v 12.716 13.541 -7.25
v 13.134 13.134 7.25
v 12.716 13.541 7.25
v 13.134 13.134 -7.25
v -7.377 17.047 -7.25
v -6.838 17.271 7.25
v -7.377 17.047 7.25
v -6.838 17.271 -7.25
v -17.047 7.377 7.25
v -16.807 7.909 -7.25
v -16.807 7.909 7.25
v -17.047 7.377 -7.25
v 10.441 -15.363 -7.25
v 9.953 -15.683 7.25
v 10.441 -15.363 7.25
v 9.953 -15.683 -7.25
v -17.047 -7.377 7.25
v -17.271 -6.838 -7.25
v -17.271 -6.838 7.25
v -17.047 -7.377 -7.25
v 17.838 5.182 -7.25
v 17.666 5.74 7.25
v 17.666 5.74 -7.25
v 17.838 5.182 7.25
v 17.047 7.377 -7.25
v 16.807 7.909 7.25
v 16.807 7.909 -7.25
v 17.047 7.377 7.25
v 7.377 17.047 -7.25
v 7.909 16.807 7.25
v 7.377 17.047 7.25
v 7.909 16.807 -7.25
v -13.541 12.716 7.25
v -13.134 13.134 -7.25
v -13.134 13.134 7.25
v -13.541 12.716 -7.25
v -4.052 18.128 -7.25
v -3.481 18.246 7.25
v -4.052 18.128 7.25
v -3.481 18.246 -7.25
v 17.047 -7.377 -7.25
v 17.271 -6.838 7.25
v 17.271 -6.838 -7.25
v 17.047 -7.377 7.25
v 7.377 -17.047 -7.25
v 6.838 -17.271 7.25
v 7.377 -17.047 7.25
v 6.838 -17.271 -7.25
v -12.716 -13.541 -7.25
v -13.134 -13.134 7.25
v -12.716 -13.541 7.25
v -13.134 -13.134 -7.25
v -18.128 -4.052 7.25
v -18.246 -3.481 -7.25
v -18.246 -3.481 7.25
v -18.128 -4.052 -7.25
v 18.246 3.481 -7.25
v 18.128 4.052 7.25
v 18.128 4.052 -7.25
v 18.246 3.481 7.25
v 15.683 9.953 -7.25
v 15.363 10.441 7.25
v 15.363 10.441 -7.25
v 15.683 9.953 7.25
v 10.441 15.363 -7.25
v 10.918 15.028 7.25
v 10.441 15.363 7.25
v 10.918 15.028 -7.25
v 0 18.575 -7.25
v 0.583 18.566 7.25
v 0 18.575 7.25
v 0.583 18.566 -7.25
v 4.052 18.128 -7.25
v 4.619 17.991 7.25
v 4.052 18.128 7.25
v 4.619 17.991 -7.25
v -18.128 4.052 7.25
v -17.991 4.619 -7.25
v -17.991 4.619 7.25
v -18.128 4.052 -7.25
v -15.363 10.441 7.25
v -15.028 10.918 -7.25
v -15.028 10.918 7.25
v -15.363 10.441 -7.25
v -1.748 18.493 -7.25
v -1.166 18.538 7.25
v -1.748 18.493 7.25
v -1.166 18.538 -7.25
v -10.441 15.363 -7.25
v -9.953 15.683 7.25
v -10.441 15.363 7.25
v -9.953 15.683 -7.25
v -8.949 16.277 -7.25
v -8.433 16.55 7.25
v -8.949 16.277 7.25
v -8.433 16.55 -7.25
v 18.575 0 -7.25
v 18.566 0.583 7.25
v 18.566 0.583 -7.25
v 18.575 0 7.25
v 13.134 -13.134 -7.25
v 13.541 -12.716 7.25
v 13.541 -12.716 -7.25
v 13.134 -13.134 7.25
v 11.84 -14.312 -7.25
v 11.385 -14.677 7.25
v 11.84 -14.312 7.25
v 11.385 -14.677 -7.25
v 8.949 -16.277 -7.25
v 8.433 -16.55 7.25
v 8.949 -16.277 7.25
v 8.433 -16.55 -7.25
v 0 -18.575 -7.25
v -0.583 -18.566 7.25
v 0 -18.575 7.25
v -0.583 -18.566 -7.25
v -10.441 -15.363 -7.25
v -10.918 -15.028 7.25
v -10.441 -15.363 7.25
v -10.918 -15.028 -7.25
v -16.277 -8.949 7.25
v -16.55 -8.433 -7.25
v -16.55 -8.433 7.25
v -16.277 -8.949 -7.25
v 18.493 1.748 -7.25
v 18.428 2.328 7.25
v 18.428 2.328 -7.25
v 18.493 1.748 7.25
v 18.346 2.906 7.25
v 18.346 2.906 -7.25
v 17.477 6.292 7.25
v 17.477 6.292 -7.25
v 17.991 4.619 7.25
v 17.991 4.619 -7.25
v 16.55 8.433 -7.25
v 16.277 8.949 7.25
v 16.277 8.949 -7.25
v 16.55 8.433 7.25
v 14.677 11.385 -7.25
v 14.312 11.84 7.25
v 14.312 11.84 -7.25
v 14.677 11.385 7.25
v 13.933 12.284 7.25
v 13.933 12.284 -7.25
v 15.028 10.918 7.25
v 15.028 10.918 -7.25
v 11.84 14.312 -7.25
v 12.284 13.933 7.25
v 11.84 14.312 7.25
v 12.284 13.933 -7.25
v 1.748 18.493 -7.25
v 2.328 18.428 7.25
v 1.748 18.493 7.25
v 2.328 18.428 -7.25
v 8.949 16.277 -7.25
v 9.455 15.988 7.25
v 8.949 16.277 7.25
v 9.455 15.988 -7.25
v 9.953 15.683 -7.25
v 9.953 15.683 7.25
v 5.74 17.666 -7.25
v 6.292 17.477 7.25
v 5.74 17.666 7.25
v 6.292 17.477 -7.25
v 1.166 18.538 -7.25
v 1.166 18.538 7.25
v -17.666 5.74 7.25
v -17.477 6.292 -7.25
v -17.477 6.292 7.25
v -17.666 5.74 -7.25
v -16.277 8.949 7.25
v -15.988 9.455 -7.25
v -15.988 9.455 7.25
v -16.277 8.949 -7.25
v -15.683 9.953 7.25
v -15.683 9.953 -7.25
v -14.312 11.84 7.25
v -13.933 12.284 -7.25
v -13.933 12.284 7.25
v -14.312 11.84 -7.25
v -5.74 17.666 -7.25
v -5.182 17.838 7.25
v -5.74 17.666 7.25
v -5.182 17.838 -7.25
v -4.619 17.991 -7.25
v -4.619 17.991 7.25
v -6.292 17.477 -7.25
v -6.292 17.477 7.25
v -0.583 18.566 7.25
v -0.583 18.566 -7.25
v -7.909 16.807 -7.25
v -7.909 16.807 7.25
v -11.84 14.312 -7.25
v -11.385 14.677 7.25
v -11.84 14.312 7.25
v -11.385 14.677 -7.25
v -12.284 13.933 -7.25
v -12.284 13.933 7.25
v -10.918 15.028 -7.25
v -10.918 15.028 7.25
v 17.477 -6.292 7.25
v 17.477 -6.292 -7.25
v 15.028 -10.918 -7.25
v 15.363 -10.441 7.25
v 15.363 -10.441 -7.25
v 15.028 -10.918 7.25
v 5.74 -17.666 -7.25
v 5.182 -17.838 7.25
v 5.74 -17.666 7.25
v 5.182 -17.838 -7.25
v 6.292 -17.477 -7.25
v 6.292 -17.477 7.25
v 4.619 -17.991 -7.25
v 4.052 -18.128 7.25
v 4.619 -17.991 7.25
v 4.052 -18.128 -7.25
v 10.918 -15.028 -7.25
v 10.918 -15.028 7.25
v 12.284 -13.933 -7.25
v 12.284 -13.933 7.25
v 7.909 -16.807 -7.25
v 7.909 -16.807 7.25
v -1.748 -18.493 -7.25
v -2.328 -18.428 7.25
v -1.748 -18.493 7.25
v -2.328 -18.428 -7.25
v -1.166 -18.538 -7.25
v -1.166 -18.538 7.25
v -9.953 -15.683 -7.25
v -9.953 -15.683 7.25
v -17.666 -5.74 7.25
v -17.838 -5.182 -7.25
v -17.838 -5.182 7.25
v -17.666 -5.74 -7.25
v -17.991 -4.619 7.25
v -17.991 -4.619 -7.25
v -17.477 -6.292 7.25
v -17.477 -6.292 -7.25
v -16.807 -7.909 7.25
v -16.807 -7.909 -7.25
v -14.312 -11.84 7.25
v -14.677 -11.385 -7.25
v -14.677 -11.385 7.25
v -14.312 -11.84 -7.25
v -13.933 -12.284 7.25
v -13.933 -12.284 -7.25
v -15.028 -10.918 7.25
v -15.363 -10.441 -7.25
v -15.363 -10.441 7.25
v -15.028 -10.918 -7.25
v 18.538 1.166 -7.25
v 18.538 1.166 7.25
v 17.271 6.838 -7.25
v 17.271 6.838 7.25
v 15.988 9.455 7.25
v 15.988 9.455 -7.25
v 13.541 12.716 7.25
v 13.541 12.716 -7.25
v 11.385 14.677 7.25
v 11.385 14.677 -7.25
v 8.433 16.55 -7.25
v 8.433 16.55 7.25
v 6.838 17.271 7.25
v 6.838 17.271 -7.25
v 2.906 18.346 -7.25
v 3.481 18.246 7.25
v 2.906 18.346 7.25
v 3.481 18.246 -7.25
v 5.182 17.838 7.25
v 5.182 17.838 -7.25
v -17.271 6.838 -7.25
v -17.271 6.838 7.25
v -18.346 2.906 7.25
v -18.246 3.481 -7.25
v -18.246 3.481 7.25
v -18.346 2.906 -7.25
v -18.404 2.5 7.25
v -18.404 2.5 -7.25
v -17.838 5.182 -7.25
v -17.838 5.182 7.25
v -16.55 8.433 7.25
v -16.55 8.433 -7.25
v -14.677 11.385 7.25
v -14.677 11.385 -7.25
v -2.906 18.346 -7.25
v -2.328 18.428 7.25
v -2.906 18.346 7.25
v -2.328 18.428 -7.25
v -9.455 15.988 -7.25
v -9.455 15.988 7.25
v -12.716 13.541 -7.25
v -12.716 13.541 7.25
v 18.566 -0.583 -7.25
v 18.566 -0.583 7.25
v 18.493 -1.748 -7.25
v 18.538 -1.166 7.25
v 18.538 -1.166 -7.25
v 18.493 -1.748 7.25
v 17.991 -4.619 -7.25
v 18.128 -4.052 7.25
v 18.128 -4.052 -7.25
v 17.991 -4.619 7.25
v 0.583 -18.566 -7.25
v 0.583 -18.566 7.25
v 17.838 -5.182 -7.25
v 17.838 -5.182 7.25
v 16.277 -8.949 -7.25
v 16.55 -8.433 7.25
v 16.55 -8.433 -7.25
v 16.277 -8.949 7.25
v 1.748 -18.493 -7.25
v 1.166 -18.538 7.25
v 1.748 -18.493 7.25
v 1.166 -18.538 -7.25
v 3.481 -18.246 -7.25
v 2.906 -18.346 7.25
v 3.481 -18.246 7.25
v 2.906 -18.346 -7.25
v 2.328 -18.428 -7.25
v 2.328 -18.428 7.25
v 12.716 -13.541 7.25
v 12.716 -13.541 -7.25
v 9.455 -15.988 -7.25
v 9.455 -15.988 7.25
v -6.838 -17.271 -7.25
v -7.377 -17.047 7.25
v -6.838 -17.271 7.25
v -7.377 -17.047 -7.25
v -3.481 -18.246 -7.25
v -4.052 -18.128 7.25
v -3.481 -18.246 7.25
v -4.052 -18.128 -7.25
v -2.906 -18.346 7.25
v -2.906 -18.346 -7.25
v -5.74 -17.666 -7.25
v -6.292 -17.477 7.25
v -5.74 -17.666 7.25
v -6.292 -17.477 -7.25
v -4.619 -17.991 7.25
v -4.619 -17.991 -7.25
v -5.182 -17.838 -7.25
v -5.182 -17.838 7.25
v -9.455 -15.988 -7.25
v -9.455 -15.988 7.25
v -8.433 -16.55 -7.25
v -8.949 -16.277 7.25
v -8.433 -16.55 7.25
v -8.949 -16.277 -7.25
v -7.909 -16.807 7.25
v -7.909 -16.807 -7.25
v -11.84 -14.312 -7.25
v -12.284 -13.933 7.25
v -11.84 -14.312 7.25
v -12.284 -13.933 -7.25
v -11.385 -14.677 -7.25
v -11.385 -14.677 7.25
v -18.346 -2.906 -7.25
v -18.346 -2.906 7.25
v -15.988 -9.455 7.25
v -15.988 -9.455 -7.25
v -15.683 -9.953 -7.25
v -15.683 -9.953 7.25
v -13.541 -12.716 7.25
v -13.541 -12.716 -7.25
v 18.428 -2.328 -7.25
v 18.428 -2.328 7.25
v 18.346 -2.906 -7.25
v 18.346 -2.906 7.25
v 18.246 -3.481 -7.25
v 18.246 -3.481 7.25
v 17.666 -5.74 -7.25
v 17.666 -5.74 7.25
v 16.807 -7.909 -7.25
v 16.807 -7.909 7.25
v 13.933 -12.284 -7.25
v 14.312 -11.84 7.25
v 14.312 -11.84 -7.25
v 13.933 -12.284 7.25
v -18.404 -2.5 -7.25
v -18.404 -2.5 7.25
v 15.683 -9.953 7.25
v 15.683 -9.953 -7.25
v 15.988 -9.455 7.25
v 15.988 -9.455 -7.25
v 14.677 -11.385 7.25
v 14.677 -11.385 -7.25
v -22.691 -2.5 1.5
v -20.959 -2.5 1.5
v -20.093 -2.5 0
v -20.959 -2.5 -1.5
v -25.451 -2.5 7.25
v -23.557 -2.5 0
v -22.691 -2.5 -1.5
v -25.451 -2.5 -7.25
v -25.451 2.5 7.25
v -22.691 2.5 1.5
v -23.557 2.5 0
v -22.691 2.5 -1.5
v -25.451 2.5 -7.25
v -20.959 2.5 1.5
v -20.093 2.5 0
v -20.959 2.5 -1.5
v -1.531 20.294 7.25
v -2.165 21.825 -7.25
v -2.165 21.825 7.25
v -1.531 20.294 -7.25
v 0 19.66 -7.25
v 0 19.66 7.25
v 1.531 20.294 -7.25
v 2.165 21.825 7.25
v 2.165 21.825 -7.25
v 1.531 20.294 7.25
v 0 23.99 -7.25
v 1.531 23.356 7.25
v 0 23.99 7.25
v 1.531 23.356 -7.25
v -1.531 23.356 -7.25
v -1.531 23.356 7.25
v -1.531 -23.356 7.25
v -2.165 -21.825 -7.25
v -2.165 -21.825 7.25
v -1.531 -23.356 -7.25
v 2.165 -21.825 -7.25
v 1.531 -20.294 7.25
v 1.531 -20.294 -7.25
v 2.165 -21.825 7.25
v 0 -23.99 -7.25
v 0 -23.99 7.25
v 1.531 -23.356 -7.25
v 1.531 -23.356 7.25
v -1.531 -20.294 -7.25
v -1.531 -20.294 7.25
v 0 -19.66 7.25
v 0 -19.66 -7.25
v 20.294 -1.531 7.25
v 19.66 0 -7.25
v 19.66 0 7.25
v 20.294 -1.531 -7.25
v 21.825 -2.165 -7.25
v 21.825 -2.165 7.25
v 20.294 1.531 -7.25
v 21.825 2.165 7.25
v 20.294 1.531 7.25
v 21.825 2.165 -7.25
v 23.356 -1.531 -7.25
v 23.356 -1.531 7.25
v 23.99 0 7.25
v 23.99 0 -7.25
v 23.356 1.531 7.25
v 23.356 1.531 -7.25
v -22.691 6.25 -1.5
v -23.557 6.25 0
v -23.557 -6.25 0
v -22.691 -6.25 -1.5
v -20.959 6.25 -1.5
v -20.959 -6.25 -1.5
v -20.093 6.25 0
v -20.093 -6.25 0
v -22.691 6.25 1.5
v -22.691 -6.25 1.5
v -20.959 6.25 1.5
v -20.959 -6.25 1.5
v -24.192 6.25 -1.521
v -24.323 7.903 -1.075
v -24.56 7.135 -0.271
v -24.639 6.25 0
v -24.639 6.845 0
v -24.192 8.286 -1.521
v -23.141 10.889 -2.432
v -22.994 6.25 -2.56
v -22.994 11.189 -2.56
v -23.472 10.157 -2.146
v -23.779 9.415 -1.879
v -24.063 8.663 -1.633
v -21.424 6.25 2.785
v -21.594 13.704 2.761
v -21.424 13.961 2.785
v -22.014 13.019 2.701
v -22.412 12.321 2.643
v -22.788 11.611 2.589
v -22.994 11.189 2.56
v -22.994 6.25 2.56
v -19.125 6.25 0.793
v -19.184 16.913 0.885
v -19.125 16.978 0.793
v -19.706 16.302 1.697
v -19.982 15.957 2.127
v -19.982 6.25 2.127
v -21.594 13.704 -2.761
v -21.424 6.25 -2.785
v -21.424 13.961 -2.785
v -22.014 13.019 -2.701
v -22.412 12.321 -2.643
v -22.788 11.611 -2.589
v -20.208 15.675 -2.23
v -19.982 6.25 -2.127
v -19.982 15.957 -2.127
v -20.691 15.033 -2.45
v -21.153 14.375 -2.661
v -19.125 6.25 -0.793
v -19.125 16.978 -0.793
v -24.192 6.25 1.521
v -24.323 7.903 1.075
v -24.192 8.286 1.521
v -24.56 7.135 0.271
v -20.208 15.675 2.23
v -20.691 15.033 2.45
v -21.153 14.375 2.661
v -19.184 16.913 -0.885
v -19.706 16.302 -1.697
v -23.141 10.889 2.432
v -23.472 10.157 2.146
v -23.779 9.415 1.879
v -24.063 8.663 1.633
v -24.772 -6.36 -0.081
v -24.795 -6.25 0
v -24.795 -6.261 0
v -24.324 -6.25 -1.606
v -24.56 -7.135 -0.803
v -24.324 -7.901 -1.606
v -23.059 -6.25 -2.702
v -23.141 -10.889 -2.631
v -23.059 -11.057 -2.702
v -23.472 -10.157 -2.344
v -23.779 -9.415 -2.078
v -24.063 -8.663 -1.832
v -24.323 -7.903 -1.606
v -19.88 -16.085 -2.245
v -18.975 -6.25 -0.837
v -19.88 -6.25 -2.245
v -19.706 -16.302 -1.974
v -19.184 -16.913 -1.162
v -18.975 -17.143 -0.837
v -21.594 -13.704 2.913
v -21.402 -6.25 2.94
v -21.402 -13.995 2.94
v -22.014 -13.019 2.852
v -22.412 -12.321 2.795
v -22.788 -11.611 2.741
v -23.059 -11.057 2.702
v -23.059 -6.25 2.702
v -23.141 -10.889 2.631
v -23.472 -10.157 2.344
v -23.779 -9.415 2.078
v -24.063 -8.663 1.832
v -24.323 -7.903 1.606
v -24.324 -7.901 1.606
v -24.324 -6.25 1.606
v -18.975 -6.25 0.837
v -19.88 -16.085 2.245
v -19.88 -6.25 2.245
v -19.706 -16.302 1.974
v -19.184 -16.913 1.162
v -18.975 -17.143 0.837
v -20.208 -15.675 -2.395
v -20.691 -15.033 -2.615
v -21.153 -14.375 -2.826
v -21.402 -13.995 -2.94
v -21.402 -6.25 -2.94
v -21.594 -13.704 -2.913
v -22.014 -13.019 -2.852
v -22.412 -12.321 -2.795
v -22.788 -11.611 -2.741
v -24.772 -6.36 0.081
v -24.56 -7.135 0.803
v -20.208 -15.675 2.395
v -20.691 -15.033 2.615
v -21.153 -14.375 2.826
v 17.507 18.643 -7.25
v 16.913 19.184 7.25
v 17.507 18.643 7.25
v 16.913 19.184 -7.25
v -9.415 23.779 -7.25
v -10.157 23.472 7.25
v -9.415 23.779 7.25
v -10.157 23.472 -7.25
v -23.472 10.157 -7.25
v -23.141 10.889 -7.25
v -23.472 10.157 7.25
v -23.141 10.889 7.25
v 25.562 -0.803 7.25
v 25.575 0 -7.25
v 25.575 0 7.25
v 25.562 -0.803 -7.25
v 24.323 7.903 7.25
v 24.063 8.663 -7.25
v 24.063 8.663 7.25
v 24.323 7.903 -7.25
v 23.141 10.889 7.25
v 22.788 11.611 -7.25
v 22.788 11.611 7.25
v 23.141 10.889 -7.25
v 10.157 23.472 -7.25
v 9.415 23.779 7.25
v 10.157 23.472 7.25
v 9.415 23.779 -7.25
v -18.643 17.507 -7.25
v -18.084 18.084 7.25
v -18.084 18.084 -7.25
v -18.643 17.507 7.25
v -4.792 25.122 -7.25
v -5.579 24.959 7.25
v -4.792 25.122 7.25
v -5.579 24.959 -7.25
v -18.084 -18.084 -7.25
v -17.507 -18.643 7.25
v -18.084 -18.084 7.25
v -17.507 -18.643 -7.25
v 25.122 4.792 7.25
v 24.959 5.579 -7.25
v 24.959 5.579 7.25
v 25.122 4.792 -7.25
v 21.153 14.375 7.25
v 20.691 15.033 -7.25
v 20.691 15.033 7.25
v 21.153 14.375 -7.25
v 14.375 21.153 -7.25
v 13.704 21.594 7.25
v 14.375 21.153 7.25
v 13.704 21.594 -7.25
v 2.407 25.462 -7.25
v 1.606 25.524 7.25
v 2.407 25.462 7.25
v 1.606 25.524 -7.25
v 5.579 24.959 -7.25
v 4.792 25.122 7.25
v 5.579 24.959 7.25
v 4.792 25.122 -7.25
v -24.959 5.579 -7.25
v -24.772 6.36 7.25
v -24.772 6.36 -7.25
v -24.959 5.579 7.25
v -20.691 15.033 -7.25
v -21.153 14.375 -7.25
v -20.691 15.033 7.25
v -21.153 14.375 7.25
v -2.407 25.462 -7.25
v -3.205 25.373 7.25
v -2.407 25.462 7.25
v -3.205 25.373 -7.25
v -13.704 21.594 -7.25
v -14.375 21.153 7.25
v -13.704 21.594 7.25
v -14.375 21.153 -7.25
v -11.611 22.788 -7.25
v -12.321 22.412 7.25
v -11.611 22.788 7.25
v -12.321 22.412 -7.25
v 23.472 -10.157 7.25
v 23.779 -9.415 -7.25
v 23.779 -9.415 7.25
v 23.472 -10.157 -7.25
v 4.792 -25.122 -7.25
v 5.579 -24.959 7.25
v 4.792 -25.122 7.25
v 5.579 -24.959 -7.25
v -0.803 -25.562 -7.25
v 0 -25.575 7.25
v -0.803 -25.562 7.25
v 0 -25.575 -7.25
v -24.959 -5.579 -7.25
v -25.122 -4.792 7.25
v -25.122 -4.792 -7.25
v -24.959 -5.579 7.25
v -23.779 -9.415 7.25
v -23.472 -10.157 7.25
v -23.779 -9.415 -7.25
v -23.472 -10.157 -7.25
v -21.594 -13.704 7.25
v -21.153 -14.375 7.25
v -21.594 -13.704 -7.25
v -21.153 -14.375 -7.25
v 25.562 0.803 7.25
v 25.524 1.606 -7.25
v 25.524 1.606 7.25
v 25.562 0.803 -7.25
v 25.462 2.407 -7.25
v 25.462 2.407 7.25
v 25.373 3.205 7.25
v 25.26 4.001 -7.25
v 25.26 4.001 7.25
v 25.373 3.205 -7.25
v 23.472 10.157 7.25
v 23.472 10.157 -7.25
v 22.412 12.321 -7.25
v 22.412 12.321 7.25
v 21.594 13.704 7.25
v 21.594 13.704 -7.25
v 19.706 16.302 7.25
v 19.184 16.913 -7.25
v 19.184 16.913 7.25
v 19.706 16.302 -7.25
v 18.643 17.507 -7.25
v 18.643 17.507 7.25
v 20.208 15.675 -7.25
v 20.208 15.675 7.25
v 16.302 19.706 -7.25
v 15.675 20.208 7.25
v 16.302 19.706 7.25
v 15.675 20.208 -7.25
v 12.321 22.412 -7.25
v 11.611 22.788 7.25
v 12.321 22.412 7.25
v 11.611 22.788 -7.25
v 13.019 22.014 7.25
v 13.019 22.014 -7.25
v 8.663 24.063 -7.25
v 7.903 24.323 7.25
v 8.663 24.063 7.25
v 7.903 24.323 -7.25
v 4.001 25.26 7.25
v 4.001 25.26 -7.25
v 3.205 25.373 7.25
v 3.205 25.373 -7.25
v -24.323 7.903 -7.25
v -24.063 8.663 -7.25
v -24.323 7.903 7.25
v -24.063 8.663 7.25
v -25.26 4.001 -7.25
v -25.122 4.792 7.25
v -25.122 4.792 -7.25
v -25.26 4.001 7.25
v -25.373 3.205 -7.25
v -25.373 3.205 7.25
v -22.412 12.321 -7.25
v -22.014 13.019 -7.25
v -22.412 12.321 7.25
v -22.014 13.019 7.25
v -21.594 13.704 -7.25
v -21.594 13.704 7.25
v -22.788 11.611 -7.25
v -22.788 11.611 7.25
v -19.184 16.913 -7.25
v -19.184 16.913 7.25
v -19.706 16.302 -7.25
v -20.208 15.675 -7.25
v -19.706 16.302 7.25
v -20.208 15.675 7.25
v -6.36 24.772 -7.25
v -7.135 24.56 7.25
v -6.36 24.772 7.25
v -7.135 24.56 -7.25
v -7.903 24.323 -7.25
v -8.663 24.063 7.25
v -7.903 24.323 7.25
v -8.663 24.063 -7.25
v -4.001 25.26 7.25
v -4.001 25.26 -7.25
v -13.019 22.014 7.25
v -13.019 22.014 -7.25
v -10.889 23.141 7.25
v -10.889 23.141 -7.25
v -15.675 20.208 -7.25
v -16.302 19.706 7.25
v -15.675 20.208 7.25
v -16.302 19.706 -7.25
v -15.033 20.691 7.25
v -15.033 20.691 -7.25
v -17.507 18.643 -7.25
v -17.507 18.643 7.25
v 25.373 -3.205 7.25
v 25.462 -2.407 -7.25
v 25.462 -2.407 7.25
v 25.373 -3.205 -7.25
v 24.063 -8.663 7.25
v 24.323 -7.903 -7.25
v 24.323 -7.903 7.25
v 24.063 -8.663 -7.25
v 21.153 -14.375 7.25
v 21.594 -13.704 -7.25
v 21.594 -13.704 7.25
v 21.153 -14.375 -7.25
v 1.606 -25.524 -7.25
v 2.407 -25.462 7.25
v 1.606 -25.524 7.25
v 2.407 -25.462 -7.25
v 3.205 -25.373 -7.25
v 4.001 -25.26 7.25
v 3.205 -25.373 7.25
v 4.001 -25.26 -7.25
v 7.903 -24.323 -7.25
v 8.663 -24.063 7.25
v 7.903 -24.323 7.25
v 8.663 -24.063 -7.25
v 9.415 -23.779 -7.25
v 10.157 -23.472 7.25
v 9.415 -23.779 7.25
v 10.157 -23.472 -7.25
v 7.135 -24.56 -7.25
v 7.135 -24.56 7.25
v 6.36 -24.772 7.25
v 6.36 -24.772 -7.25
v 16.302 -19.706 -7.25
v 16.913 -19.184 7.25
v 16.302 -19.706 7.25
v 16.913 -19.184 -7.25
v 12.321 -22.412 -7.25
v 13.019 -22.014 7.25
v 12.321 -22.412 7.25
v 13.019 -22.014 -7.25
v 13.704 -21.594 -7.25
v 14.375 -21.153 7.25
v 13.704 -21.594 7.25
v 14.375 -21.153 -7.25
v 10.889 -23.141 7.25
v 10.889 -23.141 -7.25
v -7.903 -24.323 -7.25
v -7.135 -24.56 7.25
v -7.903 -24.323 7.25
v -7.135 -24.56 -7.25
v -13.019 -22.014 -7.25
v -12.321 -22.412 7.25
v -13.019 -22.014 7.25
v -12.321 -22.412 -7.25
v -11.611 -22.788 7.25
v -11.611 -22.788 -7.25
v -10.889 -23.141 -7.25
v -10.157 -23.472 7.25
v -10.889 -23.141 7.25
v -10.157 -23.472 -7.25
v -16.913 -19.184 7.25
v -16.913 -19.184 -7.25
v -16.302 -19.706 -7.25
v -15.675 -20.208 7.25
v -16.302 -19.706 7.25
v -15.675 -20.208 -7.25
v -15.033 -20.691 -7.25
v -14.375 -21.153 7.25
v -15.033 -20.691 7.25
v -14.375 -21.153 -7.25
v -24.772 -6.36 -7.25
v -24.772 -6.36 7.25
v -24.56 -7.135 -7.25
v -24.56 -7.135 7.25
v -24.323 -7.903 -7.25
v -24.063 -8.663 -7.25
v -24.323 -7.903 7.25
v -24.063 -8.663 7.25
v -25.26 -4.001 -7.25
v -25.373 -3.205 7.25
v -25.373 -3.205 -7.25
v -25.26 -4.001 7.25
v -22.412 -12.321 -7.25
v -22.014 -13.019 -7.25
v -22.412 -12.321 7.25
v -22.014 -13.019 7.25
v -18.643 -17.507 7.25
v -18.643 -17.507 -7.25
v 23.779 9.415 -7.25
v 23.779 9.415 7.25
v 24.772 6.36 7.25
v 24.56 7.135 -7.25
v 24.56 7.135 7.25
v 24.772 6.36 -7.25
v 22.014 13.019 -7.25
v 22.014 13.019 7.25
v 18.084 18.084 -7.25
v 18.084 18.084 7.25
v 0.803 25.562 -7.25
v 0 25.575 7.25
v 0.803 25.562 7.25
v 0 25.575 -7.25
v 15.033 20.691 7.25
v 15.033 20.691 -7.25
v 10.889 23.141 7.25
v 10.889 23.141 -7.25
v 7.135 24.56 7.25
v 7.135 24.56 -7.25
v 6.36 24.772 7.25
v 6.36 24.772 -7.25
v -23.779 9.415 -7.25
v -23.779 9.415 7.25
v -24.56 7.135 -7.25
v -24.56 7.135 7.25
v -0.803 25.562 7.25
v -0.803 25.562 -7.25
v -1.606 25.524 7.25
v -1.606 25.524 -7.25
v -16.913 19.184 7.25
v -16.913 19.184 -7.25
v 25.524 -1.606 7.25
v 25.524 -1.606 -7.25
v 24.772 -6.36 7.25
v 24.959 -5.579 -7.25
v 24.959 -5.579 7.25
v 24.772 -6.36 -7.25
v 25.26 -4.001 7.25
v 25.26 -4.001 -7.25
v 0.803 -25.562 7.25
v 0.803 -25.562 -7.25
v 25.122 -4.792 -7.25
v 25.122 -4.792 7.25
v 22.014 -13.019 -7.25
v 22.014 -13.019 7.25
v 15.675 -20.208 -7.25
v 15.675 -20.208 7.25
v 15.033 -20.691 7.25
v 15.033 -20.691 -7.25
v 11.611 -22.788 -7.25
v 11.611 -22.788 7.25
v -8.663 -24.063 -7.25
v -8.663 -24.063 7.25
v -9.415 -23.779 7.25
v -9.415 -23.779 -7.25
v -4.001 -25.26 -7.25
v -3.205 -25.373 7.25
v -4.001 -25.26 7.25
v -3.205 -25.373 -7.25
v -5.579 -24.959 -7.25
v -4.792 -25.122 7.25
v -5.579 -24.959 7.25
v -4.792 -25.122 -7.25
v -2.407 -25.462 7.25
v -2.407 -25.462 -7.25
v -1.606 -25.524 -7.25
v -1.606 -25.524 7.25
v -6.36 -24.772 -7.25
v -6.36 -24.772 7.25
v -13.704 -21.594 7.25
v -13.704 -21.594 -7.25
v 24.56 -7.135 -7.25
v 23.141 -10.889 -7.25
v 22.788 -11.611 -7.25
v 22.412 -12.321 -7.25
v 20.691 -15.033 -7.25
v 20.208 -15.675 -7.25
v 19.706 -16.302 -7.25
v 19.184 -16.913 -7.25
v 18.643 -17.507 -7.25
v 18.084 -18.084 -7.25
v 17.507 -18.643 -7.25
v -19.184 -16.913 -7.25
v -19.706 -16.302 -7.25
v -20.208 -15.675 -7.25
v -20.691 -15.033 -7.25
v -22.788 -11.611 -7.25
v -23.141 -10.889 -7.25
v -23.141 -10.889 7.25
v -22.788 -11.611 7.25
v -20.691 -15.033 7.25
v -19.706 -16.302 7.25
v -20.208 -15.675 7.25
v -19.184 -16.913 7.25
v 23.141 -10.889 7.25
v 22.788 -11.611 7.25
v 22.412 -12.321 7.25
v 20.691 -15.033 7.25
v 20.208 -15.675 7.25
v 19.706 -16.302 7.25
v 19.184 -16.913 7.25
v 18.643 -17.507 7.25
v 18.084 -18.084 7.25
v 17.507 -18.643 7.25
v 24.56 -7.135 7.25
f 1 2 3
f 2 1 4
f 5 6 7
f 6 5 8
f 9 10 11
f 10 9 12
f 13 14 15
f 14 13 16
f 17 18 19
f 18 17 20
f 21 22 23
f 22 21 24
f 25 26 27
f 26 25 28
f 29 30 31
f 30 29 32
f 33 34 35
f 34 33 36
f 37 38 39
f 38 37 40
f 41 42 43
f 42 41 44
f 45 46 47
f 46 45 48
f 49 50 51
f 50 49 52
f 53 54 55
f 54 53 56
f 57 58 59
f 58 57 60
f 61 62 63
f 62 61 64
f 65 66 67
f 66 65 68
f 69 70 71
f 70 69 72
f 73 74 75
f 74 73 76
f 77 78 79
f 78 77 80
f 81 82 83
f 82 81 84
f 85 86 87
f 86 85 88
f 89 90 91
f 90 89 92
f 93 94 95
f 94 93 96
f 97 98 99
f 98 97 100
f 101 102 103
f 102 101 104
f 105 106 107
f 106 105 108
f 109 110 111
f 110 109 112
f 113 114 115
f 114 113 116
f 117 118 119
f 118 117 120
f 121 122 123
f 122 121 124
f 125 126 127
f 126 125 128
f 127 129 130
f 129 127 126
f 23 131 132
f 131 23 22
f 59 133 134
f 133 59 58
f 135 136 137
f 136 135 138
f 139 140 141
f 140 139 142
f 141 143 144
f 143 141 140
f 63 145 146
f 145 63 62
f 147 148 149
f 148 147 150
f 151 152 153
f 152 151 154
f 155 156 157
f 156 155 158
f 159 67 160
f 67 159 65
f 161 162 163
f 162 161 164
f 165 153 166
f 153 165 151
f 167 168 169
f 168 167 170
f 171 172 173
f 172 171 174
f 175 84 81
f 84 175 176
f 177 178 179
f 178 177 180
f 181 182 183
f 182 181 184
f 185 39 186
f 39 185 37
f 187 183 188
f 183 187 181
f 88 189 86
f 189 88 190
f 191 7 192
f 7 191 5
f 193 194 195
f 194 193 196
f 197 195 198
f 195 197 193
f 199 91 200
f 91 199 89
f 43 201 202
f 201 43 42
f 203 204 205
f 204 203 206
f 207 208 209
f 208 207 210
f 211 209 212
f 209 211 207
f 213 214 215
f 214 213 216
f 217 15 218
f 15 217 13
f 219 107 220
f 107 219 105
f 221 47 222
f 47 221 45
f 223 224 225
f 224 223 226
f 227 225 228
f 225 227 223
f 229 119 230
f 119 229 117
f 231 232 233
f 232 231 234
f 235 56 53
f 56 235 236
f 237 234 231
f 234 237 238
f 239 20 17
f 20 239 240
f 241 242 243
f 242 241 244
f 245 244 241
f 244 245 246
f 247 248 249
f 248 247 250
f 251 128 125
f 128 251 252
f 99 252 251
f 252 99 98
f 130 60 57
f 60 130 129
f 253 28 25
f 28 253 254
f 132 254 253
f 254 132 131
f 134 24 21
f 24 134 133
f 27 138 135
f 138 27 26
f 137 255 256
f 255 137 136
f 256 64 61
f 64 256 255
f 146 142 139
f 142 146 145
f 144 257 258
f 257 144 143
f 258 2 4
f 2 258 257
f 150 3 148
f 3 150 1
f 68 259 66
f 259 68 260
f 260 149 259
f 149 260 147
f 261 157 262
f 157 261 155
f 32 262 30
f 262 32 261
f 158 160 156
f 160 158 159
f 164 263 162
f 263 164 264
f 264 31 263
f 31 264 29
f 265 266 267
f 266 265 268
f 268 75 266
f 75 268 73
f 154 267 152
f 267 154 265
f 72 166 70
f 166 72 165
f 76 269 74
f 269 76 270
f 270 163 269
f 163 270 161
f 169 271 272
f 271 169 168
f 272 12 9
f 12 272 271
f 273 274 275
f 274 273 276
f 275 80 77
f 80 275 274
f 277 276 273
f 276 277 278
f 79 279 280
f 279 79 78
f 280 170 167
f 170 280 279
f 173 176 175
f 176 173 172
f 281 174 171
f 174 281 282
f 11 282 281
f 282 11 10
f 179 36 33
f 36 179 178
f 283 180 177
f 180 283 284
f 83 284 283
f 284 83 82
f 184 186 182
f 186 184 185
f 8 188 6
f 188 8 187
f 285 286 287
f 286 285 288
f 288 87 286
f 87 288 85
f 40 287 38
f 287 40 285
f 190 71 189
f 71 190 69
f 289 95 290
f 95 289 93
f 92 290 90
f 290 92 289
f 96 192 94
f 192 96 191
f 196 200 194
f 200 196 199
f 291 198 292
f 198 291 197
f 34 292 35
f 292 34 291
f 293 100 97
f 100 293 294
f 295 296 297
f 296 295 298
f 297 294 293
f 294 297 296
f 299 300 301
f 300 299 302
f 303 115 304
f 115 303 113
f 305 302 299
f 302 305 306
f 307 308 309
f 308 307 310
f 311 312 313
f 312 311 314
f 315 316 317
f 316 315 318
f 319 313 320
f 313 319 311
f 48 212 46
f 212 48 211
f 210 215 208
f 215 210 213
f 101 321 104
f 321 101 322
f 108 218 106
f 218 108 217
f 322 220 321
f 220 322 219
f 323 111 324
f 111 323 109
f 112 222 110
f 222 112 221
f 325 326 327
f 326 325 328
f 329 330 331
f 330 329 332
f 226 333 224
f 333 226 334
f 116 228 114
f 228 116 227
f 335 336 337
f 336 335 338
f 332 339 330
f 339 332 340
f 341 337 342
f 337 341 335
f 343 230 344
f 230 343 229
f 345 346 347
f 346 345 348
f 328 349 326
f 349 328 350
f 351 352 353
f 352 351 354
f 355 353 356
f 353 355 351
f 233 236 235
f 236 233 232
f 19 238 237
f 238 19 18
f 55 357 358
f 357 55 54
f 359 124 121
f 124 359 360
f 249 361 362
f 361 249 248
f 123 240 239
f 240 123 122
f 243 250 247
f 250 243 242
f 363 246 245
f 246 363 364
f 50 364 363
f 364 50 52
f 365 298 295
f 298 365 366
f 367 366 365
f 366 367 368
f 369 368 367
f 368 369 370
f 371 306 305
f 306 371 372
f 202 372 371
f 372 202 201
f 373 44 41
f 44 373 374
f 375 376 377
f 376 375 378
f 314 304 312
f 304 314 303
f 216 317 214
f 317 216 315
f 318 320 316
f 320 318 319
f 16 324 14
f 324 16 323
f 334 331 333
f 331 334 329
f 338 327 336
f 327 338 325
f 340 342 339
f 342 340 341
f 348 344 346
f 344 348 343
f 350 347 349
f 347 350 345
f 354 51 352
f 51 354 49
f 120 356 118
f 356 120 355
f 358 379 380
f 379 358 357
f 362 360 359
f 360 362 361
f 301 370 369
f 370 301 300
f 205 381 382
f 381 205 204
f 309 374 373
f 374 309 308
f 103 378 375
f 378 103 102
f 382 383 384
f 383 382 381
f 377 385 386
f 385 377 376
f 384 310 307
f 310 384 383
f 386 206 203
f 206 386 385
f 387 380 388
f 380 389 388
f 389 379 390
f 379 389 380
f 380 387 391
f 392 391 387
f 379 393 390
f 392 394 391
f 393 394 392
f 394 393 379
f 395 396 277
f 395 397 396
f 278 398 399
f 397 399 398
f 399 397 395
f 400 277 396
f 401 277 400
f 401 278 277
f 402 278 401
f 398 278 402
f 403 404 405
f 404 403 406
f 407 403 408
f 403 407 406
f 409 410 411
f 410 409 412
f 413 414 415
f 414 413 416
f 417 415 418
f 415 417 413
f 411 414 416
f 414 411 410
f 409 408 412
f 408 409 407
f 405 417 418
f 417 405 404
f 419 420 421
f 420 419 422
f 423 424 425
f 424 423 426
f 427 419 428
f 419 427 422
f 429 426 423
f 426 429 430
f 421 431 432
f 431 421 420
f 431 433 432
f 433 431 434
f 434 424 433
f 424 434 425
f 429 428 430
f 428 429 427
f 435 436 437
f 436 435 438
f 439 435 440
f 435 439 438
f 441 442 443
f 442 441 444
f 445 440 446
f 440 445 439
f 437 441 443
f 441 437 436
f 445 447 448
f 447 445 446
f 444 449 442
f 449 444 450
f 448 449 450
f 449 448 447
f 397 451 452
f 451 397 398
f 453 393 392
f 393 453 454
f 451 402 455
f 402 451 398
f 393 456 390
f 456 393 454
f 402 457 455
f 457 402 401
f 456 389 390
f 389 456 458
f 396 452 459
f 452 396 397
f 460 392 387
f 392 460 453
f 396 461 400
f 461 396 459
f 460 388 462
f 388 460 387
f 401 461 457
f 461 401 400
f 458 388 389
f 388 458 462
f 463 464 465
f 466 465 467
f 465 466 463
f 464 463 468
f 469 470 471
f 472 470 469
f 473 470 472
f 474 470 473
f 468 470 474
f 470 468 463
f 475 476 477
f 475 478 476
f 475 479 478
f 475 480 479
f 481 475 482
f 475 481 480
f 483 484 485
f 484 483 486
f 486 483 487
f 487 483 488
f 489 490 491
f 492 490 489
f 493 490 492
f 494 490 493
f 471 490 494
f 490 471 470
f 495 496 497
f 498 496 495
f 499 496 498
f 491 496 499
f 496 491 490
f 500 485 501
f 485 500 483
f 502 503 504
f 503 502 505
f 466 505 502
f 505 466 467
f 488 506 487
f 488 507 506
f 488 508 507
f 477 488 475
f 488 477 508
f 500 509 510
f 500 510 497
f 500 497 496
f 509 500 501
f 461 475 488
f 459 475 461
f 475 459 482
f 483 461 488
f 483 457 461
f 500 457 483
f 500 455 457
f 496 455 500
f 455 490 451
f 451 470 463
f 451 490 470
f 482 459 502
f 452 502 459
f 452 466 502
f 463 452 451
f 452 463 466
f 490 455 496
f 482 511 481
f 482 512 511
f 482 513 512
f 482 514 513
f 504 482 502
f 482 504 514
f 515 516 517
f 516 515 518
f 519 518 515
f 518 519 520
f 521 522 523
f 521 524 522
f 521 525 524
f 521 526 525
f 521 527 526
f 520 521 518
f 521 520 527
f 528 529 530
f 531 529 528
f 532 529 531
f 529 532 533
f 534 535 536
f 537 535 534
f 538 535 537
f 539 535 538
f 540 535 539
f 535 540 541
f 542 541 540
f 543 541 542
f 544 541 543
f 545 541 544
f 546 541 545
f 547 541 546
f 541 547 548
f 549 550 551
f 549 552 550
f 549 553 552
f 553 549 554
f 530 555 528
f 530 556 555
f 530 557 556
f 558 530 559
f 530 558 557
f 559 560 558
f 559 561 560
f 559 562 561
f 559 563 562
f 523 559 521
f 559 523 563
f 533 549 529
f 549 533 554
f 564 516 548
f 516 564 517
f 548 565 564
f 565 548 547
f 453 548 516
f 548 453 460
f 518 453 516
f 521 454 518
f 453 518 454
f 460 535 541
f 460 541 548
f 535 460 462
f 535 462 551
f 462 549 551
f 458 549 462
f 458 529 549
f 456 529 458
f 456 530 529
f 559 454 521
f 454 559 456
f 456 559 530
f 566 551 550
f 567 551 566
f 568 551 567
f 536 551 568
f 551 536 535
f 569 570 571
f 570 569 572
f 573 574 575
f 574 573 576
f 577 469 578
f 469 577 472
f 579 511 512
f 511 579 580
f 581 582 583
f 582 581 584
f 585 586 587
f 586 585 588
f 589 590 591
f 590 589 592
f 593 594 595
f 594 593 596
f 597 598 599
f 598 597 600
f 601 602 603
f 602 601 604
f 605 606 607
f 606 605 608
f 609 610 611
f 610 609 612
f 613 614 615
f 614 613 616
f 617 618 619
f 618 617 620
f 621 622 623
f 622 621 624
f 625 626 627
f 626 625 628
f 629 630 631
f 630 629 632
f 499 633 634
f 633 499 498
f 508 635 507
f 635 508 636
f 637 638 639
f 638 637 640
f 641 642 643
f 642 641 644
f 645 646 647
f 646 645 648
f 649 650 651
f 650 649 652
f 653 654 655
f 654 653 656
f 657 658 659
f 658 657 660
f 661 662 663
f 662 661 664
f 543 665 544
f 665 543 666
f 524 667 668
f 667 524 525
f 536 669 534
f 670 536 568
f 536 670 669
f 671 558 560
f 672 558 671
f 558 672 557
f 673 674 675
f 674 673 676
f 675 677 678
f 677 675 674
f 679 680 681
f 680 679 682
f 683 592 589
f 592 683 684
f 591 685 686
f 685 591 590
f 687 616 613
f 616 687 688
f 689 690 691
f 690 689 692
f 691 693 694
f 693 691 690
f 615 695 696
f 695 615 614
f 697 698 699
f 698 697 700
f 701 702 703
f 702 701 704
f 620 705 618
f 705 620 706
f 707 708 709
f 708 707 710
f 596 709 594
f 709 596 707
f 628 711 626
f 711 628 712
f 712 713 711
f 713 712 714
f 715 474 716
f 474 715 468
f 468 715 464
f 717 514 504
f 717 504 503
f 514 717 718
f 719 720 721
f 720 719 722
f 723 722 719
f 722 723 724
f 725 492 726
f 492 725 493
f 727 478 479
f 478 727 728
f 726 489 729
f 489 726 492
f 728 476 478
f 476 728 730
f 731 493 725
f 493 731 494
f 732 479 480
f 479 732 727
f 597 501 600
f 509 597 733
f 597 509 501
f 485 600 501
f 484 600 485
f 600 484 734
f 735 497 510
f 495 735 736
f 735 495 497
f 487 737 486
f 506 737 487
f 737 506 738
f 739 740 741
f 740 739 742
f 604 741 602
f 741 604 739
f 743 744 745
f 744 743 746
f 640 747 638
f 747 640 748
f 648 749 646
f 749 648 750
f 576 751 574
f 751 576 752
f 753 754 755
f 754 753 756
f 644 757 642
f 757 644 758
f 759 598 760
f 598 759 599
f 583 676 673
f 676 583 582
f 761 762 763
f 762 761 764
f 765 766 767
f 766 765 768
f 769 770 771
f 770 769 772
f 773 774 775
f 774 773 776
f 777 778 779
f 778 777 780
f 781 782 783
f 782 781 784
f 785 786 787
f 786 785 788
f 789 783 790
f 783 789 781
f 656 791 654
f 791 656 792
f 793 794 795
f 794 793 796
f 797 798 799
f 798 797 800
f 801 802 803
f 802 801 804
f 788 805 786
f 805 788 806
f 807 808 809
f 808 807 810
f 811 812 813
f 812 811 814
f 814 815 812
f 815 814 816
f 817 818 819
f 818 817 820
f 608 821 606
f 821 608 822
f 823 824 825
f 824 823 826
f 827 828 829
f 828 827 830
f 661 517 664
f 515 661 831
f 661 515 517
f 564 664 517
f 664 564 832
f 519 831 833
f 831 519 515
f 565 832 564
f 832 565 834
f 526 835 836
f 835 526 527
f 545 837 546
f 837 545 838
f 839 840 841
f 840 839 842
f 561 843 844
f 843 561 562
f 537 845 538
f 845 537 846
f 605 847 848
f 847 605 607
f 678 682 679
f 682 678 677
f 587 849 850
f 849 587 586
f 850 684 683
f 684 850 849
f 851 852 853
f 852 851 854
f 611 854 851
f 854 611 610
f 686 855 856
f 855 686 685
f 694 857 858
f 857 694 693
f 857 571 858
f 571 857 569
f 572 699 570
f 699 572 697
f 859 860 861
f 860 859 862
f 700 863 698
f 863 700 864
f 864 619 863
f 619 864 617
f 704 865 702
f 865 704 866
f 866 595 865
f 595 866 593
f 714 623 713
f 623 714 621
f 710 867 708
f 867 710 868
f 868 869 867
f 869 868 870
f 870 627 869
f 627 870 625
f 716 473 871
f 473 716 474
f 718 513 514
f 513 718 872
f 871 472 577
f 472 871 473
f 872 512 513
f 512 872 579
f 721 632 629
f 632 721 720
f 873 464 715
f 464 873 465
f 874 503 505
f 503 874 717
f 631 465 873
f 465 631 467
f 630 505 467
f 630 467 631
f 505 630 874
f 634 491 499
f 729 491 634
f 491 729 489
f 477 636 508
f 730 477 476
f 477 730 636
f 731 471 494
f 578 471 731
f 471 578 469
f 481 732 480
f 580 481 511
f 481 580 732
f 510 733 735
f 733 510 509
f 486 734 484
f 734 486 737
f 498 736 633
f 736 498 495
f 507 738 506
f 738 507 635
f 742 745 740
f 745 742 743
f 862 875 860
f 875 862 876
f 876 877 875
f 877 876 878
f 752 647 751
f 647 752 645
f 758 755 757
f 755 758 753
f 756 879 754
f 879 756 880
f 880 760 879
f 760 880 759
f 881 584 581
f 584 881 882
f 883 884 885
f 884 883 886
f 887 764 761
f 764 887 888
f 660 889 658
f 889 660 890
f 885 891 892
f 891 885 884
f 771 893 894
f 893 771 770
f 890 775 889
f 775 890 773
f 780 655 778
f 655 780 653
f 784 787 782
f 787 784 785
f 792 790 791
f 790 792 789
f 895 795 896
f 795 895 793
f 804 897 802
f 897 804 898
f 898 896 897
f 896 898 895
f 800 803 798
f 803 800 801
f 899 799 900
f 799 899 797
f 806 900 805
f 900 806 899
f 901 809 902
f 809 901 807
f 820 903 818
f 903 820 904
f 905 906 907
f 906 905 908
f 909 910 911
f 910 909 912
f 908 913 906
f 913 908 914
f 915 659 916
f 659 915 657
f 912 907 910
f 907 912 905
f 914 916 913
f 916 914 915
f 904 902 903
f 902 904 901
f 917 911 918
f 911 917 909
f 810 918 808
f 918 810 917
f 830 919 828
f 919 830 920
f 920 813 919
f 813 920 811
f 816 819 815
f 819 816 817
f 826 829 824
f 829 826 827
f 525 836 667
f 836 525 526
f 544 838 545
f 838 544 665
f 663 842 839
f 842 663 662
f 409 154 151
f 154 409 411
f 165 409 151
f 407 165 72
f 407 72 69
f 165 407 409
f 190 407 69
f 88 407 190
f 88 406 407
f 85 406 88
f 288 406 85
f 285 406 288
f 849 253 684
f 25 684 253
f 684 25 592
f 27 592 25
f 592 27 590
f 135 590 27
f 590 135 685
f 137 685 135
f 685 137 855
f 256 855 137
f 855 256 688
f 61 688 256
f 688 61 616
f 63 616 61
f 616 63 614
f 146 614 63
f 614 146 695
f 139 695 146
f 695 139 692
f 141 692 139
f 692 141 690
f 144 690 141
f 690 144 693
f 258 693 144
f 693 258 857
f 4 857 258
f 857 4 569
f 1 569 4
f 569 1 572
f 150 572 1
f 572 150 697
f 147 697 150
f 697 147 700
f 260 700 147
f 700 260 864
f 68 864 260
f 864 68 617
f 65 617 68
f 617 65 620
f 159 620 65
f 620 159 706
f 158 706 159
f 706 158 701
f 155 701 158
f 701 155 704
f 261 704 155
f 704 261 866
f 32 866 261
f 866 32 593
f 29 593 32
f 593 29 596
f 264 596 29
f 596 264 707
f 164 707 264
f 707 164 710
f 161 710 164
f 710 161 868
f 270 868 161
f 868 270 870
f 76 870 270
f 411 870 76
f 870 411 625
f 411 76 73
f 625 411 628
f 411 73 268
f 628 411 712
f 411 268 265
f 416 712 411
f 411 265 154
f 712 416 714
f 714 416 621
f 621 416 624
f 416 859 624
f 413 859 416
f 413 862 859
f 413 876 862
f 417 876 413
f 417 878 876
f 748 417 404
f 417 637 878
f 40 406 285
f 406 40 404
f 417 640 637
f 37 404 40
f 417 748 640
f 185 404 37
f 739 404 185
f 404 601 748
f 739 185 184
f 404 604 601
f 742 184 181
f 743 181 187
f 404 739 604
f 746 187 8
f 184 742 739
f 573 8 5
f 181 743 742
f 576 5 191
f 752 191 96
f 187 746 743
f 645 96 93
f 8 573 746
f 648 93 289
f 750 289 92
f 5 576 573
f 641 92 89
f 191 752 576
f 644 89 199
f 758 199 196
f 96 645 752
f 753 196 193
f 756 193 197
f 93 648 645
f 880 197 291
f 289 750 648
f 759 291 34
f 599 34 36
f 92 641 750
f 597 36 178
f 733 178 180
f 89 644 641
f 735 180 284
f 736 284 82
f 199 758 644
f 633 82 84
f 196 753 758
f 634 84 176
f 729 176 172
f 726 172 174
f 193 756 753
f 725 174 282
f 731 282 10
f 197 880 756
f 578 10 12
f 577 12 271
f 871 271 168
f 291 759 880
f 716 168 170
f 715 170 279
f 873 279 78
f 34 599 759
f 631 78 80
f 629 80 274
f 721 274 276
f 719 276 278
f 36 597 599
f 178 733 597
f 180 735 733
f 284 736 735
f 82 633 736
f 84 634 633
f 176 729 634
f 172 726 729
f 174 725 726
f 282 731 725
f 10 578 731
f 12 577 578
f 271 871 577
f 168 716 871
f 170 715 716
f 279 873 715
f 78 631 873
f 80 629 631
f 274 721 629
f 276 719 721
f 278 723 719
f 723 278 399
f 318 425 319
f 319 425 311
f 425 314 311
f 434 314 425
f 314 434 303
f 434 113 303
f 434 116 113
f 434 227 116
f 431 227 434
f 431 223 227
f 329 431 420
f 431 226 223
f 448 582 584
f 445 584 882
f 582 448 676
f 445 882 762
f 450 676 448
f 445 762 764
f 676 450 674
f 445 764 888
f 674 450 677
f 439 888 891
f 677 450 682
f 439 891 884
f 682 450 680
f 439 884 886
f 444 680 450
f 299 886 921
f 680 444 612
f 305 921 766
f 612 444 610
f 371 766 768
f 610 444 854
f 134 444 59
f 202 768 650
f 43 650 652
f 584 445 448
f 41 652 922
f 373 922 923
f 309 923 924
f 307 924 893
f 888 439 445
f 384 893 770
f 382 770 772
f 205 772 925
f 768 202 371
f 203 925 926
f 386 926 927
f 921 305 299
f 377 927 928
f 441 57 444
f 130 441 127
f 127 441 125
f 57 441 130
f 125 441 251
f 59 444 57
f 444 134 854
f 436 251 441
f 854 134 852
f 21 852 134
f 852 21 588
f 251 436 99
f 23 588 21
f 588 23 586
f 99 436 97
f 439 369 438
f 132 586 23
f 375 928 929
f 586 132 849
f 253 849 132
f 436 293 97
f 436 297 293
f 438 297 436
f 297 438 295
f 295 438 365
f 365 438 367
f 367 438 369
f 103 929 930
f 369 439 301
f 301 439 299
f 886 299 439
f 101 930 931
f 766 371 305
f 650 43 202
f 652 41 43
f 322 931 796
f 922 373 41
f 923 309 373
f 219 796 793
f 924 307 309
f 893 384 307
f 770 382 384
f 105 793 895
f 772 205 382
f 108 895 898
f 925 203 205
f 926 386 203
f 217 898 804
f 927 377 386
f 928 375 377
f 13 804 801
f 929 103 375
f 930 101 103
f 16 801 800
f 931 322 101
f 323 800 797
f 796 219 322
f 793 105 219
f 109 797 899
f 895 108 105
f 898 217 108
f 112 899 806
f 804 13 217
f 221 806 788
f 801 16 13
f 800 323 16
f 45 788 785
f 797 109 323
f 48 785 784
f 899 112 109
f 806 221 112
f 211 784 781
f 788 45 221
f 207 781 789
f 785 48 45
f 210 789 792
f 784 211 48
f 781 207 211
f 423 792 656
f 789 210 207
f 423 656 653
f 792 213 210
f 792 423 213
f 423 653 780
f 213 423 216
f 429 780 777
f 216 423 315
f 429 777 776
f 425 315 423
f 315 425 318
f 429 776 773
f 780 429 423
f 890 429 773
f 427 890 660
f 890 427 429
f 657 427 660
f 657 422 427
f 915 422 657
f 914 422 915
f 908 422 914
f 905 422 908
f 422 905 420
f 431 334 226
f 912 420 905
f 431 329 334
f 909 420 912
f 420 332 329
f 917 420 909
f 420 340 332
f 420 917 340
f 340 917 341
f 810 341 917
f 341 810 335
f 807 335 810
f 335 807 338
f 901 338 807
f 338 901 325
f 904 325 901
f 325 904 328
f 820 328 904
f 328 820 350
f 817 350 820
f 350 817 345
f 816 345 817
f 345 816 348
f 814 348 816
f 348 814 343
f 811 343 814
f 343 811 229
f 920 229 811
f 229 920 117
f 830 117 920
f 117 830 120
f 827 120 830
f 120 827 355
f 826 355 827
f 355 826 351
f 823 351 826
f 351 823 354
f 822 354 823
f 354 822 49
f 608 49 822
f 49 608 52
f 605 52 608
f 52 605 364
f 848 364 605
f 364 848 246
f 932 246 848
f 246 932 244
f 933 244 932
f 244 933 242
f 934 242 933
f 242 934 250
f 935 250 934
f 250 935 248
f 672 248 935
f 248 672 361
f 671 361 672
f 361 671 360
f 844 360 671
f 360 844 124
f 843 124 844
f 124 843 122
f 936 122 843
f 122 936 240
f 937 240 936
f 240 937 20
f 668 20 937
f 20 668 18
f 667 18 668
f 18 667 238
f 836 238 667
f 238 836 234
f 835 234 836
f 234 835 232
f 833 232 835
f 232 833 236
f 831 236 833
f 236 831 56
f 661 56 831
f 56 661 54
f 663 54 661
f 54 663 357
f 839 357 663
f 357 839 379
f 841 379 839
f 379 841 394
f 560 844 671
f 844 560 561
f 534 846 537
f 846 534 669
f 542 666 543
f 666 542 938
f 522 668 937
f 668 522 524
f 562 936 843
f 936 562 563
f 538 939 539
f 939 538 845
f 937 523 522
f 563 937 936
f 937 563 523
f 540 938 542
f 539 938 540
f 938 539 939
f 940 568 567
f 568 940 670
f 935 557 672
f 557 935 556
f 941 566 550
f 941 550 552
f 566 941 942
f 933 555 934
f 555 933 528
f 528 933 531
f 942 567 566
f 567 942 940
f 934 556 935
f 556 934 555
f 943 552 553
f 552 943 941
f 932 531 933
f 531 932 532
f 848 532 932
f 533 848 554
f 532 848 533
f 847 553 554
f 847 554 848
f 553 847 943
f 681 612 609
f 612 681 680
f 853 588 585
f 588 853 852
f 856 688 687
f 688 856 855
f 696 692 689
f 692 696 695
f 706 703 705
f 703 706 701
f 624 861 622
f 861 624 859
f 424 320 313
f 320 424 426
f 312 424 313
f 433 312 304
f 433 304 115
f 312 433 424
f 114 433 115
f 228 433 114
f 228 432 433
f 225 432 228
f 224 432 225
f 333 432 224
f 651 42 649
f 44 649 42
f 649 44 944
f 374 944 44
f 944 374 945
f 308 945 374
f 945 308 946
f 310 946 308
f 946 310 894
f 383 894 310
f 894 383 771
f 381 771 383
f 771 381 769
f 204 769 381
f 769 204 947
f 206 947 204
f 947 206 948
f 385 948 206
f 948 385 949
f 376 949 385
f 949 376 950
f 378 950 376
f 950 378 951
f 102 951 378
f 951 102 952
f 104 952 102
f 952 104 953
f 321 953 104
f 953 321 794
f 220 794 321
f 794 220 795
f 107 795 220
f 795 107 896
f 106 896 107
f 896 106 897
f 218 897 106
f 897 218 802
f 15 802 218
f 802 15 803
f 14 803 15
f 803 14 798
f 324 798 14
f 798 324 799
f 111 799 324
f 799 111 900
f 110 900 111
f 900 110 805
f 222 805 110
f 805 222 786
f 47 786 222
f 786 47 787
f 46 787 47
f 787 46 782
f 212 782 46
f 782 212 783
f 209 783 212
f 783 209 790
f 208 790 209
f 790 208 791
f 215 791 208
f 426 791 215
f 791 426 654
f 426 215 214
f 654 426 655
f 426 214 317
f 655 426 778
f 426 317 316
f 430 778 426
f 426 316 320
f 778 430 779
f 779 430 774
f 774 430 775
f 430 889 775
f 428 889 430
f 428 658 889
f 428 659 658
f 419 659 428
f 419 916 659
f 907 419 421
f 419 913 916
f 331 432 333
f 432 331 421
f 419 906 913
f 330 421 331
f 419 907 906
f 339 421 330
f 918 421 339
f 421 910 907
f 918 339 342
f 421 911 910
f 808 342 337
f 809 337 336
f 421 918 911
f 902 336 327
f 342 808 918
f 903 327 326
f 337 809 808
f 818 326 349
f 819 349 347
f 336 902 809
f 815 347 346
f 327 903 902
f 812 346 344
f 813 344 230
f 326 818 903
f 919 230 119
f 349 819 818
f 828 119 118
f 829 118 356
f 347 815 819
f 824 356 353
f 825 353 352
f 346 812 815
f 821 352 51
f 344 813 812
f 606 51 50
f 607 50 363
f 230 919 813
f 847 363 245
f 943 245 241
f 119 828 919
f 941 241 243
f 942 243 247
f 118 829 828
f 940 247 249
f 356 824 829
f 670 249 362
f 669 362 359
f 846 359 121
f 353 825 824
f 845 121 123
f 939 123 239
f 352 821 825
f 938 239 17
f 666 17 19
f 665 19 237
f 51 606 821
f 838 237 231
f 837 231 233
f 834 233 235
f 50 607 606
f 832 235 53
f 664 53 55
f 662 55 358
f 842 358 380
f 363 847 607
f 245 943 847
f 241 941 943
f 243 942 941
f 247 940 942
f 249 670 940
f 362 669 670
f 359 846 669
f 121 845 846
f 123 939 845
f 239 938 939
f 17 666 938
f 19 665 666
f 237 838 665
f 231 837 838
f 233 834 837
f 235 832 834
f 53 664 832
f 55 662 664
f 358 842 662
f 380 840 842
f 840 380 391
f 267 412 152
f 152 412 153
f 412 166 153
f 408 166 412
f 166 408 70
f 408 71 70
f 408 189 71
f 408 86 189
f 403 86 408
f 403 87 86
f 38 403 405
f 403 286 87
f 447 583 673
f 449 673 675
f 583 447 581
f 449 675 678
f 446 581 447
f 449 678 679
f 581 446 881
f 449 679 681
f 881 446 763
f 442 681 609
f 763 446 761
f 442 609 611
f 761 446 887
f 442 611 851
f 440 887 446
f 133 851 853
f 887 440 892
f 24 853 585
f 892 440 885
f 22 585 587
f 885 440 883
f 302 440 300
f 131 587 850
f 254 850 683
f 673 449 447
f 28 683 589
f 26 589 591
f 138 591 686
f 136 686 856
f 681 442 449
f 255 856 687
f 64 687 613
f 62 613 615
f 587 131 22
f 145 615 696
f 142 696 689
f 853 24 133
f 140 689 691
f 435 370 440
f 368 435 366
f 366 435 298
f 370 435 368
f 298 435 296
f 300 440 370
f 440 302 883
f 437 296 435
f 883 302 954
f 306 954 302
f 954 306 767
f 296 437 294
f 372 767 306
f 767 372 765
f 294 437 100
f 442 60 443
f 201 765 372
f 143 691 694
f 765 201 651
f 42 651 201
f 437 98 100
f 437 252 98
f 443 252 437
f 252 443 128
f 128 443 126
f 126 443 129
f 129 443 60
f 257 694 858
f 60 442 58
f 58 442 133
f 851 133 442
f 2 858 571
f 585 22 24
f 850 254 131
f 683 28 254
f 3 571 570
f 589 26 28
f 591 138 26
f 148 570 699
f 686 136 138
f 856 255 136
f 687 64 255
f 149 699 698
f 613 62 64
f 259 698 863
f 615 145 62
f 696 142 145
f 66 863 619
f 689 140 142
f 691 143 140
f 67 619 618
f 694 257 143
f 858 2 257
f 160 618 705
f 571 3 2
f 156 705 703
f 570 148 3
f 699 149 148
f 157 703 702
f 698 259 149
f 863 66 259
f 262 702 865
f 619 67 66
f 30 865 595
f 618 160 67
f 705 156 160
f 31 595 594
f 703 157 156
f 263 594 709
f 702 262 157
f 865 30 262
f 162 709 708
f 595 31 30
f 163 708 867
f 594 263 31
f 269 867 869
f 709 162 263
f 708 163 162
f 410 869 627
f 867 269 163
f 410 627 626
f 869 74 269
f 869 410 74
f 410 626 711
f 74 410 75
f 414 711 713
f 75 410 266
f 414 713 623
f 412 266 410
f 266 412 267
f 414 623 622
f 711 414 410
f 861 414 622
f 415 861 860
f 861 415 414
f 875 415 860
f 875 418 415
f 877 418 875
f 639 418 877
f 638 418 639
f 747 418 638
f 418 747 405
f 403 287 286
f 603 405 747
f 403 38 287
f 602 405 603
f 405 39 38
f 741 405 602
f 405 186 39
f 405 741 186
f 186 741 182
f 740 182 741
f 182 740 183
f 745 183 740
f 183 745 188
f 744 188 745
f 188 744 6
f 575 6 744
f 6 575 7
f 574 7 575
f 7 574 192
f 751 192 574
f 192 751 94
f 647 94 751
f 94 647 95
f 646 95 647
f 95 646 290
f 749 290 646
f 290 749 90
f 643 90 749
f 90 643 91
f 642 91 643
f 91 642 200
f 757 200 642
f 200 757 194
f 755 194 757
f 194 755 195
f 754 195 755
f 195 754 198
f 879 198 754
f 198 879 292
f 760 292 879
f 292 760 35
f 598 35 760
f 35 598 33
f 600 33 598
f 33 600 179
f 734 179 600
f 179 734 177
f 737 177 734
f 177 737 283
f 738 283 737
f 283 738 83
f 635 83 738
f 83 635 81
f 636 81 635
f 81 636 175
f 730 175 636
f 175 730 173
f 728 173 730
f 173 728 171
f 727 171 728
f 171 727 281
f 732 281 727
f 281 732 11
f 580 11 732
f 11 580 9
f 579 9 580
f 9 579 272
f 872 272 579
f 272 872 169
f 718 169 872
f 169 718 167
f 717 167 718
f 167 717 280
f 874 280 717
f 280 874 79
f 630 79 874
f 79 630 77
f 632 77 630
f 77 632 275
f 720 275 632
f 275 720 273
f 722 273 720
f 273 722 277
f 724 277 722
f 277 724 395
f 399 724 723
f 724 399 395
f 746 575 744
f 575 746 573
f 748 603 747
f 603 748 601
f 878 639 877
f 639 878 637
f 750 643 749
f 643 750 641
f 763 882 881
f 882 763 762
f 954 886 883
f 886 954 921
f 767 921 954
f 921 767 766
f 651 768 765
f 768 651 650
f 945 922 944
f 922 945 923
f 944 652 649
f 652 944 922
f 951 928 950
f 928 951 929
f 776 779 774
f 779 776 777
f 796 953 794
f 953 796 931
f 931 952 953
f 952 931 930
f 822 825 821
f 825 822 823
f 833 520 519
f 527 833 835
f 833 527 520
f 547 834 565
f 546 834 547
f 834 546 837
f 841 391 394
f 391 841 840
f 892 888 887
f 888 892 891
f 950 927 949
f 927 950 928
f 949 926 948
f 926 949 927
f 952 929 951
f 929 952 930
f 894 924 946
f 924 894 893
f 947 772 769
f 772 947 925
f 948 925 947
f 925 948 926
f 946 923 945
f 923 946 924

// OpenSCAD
//
// Drill press adapter for micro air grinder for use in 
// SMI drill press
// D. Rowntree 17Nov15
//
// Adapted for use as optical rotary encoder mount.
// JSR 14/01/2016


use <MCAD/polyholes.scad>;

// Configure

id=36.15;
od=id + 15.0;

clearance=0.5;
slot_w=5;
height=29;
fn=200;

mount_hole_d = 4.0;
collar_tension_d = 3.0;
collar_tension_nut_d = 5.40;
collar_tension_head_d = 5.70;

// render top level
body();

module body()
{
    difference(){
        bulk();
        bulk_remove();
        mount_holes();
        collar_tension();
    }
}

module bulk()
{
    cylinder(h=height/2, r=od/2, center = true, $fn=fn);
}

module bulk_remove()
{
    union(){
        cylinder(h=4+height/2, r=id/2+clearance, center=true, $fn=fn);
        translate([-od/4,0,0]) cube([2+od/2,slot_w,4+height/2], center=true);
    }
   
}
        
module mount_holes() 
{
    translate([0,(od + id)/4.0 ,-height/4.0 - 1.0]) polyhole(d = mount_hole_d, h = height/2.0 + 2.0);
    translate([0,-(od + id)/4.0 ,-height/4.0 - 1.0]) polyhole(d = mount_hole_d, h = height/2.0 + 2.0);
    translate([(od + id)/4.0, 0,-height/4.0 - 1.0]) polyhole(d = mount_hole_d, h = height/2.0 + 2.0);
}

module collar_tension()
{
    union () {
        rotate([90,0,0]) {
            translate([-(od + id)/4.0, 0, 0]) {
                translate([0, 0, -height/4.0 - 1.0]) polyhole(d = collar_tension_d, h = height/2.0 + 2.0);
                translate([0, 0, -3.0*height/4.0 - 1.0]) polyhole(d = collar_tension_nut_d, h = height/2.0 + 2.0);
                translate([0, 0, height/4.0 - 1.0]) polyhole(d = collar_tension_head_d, h = height/2.0 + 2.0);
            }
        }
    }
}
